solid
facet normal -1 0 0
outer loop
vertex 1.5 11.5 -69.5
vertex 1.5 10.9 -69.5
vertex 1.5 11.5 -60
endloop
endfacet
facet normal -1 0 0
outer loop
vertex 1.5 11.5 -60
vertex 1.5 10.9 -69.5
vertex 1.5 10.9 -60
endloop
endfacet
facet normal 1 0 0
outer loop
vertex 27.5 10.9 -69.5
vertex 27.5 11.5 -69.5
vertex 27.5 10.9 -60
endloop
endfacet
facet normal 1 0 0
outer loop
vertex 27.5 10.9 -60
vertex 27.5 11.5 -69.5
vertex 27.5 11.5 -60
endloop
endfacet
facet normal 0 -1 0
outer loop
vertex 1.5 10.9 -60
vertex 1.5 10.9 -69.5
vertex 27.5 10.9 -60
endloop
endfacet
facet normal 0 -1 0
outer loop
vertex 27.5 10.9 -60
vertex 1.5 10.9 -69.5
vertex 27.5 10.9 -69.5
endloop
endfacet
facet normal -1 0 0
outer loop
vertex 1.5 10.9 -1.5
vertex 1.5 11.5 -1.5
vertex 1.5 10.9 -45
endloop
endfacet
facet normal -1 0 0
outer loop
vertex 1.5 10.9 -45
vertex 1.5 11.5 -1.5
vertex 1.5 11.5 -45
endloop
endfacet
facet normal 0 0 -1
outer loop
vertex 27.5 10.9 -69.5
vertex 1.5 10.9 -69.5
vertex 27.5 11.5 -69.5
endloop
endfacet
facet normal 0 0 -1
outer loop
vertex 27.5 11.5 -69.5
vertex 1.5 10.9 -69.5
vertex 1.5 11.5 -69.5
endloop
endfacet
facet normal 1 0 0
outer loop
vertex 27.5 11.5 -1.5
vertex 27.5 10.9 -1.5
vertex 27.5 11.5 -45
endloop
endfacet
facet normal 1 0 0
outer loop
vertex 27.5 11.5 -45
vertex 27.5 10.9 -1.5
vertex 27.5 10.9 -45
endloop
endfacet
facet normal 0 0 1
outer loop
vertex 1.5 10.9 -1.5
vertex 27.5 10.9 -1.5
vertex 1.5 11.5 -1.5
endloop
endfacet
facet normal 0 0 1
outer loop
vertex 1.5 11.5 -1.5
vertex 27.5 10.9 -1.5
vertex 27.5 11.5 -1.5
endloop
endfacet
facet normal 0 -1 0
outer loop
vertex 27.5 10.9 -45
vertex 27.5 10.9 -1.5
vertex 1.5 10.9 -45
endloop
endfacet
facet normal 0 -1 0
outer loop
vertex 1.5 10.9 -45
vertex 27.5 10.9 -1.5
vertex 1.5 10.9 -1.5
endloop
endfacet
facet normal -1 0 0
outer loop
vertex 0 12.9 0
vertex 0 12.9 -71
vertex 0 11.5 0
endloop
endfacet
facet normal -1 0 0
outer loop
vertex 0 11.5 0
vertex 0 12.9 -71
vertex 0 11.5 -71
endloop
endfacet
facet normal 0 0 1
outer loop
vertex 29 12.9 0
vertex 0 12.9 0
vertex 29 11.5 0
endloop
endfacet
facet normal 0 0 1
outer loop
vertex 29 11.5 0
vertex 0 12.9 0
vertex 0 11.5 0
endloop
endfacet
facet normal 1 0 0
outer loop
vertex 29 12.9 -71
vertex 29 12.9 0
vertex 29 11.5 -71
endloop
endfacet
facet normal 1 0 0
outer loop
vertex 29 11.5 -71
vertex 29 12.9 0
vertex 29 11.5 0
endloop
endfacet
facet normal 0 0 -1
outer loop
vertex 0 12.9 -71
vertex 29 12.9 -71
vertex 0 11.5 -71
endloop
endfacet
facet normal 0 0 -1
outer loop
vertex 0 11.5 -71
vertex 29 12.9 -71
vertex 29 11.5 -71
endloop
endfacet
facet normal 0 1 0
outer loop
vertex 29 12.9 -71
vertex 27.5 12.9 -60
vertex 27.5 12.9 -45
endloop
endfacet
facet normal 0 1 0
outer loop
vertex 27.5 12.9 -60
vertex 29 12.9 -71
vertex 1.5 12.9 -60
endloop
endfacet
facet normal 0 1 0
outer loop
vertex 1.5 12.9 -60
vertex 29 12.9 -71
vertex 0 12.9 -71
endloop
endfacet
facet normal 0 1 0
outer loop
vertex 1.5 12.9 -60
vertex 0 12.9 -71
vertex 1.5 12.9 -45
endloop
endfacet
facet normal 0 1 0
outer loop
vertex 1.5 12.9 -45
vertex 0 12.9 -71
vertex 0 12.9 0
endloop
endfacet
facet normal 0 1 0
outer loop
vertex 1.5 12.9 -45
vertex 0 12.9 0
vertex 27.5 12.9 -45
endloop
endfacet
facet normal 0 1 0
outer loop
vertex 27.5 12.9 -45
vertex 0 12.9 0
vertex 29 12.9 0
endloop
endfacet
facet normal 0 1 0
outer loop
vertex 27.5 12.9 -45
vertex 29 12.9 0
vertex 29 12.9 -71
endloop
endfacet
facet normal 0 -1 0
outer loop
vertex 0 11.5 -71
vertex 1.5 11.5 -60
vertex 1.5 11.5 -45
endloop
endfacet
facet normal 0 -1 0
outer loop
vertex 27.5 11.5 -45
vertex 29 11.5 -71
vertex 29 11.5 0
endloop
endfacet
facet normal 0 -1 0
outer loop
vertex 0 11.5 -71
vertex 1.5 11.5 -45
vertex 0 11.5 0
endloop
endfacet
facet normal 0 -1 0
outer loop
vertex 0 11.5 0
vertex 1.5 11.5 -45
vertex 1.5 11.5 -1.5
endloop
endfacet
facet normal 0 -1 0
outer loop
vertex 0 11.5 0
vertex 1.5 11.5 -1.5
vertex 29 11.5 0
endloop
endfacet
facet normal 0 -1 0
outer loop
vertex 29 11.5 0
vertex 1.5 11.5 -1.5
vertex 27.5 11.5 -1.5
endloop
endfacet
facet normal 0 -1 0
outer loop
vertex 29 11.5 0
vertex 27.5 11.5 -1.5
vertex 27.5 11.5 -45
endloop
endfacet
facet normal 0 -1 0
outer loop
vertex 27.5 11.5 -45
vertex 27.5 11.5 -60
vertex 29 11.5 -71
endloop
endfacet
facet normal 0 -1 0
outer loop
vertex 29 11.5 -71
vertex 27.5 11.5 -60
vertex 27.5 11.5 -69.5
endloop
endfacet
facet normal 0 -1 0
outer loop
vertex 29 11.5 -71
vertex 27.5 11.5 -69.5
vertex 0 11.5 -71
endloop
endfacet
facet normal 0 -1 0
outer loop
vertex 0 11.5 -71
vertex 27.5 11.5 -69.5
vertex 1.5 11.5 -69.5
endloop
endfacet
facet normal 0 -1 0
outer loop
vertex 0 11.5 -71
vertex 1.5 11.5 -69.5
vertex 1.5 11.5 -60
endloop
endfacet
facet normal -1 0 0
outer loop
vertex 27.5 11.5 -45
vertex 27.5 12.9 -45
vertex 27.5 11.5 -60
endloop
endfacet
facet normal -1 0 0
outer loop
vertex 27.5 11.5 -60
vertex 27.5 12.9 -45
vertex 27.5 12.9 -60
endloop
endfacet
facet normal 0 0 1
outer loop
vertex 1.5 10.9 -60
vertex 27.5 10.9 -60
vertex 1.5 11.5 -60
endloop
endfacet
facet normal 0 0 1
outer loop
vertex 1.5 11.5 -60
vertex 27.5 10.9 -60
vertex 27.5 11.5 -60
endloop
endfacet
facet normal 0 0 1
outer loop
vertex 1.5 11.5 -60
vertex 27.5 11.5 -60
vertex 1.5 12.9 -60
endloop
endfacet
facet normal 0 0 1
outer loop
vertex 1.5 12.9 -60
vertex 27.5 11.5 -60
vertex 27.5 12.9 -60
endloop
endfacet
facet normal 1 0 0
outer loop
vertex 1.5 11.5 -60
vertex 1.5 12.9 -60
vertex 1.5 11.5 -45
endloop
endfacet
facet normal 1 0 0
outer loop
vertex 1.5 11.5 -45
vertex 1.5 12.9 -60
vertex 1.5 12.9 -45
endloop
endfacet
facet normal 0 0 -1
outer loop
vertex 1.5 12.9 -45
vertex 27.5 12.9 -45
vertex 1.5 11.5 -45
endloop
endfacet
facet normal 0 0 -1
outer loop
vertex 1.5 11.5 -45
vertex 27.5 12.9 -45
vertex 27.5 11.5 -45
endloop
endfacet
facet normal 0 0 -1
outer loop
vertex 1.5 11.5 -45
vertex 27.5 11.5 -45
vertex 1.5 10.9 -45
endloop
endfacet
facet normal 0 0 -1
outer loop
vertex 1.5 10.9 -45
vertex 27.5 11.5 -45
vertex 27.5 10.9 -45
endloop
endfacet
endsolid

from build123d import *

# Parameters (mm, degrees)
SKETCH1_W           = 26
SKETCH1_H           = 68
BOSS_EXTRUDE1_DEPTH = 0.6
SKETCH2_W           = 29
SKETCH2_H           = 71
BOSS_EXTRUDE2_DEPTH = 1.4
SKETCH3_W           = 26
SKETCH3_H           = 15
CUT_EXTRUDE1_DEPTH  = 15.4


with BuildPart() as part:
    # Sketch1 → Boss-Extrude1 (new body)
    with BuildSketch(Plane(origin=(0, 11.5, 0), x_dir=(1, 0, 0), z_dir=(0, 1, 0))):
        with Locations((14.5, 35.5)):
            Rectangle(SKETCH1_W, SKETCH1_H)
    extrude(amount=-BOSS_EXTRUDE1_DEPTH)

    # Sketch2 → Boss-Extrude2 (add)
    with BuildSketch(Plane(origin=(0, 11.5, 0), x_dir=(1, 0, 0), z_dir=(0, 1, 0))):
        with Locations((14.5, 35.5)):
            Rectangle(SKETCH2_W, SKETCH2_H)
    extrude(amount=BOSS_EXTRUDE2_DEPTH)

    # Sketch3 → Cut-Extrude1 (cut)
    with BuildSketch(Plane.XZ.offset(-10.9)):
        with Locations((14.5, -52.5)):
            Rectangle(SKETCH3_W, SKETCH3_H)
    extrude(amount=-CUT_EXTRUDE1_DEPTH, mode=Mode.SUBTRACT)


solid = part.part
